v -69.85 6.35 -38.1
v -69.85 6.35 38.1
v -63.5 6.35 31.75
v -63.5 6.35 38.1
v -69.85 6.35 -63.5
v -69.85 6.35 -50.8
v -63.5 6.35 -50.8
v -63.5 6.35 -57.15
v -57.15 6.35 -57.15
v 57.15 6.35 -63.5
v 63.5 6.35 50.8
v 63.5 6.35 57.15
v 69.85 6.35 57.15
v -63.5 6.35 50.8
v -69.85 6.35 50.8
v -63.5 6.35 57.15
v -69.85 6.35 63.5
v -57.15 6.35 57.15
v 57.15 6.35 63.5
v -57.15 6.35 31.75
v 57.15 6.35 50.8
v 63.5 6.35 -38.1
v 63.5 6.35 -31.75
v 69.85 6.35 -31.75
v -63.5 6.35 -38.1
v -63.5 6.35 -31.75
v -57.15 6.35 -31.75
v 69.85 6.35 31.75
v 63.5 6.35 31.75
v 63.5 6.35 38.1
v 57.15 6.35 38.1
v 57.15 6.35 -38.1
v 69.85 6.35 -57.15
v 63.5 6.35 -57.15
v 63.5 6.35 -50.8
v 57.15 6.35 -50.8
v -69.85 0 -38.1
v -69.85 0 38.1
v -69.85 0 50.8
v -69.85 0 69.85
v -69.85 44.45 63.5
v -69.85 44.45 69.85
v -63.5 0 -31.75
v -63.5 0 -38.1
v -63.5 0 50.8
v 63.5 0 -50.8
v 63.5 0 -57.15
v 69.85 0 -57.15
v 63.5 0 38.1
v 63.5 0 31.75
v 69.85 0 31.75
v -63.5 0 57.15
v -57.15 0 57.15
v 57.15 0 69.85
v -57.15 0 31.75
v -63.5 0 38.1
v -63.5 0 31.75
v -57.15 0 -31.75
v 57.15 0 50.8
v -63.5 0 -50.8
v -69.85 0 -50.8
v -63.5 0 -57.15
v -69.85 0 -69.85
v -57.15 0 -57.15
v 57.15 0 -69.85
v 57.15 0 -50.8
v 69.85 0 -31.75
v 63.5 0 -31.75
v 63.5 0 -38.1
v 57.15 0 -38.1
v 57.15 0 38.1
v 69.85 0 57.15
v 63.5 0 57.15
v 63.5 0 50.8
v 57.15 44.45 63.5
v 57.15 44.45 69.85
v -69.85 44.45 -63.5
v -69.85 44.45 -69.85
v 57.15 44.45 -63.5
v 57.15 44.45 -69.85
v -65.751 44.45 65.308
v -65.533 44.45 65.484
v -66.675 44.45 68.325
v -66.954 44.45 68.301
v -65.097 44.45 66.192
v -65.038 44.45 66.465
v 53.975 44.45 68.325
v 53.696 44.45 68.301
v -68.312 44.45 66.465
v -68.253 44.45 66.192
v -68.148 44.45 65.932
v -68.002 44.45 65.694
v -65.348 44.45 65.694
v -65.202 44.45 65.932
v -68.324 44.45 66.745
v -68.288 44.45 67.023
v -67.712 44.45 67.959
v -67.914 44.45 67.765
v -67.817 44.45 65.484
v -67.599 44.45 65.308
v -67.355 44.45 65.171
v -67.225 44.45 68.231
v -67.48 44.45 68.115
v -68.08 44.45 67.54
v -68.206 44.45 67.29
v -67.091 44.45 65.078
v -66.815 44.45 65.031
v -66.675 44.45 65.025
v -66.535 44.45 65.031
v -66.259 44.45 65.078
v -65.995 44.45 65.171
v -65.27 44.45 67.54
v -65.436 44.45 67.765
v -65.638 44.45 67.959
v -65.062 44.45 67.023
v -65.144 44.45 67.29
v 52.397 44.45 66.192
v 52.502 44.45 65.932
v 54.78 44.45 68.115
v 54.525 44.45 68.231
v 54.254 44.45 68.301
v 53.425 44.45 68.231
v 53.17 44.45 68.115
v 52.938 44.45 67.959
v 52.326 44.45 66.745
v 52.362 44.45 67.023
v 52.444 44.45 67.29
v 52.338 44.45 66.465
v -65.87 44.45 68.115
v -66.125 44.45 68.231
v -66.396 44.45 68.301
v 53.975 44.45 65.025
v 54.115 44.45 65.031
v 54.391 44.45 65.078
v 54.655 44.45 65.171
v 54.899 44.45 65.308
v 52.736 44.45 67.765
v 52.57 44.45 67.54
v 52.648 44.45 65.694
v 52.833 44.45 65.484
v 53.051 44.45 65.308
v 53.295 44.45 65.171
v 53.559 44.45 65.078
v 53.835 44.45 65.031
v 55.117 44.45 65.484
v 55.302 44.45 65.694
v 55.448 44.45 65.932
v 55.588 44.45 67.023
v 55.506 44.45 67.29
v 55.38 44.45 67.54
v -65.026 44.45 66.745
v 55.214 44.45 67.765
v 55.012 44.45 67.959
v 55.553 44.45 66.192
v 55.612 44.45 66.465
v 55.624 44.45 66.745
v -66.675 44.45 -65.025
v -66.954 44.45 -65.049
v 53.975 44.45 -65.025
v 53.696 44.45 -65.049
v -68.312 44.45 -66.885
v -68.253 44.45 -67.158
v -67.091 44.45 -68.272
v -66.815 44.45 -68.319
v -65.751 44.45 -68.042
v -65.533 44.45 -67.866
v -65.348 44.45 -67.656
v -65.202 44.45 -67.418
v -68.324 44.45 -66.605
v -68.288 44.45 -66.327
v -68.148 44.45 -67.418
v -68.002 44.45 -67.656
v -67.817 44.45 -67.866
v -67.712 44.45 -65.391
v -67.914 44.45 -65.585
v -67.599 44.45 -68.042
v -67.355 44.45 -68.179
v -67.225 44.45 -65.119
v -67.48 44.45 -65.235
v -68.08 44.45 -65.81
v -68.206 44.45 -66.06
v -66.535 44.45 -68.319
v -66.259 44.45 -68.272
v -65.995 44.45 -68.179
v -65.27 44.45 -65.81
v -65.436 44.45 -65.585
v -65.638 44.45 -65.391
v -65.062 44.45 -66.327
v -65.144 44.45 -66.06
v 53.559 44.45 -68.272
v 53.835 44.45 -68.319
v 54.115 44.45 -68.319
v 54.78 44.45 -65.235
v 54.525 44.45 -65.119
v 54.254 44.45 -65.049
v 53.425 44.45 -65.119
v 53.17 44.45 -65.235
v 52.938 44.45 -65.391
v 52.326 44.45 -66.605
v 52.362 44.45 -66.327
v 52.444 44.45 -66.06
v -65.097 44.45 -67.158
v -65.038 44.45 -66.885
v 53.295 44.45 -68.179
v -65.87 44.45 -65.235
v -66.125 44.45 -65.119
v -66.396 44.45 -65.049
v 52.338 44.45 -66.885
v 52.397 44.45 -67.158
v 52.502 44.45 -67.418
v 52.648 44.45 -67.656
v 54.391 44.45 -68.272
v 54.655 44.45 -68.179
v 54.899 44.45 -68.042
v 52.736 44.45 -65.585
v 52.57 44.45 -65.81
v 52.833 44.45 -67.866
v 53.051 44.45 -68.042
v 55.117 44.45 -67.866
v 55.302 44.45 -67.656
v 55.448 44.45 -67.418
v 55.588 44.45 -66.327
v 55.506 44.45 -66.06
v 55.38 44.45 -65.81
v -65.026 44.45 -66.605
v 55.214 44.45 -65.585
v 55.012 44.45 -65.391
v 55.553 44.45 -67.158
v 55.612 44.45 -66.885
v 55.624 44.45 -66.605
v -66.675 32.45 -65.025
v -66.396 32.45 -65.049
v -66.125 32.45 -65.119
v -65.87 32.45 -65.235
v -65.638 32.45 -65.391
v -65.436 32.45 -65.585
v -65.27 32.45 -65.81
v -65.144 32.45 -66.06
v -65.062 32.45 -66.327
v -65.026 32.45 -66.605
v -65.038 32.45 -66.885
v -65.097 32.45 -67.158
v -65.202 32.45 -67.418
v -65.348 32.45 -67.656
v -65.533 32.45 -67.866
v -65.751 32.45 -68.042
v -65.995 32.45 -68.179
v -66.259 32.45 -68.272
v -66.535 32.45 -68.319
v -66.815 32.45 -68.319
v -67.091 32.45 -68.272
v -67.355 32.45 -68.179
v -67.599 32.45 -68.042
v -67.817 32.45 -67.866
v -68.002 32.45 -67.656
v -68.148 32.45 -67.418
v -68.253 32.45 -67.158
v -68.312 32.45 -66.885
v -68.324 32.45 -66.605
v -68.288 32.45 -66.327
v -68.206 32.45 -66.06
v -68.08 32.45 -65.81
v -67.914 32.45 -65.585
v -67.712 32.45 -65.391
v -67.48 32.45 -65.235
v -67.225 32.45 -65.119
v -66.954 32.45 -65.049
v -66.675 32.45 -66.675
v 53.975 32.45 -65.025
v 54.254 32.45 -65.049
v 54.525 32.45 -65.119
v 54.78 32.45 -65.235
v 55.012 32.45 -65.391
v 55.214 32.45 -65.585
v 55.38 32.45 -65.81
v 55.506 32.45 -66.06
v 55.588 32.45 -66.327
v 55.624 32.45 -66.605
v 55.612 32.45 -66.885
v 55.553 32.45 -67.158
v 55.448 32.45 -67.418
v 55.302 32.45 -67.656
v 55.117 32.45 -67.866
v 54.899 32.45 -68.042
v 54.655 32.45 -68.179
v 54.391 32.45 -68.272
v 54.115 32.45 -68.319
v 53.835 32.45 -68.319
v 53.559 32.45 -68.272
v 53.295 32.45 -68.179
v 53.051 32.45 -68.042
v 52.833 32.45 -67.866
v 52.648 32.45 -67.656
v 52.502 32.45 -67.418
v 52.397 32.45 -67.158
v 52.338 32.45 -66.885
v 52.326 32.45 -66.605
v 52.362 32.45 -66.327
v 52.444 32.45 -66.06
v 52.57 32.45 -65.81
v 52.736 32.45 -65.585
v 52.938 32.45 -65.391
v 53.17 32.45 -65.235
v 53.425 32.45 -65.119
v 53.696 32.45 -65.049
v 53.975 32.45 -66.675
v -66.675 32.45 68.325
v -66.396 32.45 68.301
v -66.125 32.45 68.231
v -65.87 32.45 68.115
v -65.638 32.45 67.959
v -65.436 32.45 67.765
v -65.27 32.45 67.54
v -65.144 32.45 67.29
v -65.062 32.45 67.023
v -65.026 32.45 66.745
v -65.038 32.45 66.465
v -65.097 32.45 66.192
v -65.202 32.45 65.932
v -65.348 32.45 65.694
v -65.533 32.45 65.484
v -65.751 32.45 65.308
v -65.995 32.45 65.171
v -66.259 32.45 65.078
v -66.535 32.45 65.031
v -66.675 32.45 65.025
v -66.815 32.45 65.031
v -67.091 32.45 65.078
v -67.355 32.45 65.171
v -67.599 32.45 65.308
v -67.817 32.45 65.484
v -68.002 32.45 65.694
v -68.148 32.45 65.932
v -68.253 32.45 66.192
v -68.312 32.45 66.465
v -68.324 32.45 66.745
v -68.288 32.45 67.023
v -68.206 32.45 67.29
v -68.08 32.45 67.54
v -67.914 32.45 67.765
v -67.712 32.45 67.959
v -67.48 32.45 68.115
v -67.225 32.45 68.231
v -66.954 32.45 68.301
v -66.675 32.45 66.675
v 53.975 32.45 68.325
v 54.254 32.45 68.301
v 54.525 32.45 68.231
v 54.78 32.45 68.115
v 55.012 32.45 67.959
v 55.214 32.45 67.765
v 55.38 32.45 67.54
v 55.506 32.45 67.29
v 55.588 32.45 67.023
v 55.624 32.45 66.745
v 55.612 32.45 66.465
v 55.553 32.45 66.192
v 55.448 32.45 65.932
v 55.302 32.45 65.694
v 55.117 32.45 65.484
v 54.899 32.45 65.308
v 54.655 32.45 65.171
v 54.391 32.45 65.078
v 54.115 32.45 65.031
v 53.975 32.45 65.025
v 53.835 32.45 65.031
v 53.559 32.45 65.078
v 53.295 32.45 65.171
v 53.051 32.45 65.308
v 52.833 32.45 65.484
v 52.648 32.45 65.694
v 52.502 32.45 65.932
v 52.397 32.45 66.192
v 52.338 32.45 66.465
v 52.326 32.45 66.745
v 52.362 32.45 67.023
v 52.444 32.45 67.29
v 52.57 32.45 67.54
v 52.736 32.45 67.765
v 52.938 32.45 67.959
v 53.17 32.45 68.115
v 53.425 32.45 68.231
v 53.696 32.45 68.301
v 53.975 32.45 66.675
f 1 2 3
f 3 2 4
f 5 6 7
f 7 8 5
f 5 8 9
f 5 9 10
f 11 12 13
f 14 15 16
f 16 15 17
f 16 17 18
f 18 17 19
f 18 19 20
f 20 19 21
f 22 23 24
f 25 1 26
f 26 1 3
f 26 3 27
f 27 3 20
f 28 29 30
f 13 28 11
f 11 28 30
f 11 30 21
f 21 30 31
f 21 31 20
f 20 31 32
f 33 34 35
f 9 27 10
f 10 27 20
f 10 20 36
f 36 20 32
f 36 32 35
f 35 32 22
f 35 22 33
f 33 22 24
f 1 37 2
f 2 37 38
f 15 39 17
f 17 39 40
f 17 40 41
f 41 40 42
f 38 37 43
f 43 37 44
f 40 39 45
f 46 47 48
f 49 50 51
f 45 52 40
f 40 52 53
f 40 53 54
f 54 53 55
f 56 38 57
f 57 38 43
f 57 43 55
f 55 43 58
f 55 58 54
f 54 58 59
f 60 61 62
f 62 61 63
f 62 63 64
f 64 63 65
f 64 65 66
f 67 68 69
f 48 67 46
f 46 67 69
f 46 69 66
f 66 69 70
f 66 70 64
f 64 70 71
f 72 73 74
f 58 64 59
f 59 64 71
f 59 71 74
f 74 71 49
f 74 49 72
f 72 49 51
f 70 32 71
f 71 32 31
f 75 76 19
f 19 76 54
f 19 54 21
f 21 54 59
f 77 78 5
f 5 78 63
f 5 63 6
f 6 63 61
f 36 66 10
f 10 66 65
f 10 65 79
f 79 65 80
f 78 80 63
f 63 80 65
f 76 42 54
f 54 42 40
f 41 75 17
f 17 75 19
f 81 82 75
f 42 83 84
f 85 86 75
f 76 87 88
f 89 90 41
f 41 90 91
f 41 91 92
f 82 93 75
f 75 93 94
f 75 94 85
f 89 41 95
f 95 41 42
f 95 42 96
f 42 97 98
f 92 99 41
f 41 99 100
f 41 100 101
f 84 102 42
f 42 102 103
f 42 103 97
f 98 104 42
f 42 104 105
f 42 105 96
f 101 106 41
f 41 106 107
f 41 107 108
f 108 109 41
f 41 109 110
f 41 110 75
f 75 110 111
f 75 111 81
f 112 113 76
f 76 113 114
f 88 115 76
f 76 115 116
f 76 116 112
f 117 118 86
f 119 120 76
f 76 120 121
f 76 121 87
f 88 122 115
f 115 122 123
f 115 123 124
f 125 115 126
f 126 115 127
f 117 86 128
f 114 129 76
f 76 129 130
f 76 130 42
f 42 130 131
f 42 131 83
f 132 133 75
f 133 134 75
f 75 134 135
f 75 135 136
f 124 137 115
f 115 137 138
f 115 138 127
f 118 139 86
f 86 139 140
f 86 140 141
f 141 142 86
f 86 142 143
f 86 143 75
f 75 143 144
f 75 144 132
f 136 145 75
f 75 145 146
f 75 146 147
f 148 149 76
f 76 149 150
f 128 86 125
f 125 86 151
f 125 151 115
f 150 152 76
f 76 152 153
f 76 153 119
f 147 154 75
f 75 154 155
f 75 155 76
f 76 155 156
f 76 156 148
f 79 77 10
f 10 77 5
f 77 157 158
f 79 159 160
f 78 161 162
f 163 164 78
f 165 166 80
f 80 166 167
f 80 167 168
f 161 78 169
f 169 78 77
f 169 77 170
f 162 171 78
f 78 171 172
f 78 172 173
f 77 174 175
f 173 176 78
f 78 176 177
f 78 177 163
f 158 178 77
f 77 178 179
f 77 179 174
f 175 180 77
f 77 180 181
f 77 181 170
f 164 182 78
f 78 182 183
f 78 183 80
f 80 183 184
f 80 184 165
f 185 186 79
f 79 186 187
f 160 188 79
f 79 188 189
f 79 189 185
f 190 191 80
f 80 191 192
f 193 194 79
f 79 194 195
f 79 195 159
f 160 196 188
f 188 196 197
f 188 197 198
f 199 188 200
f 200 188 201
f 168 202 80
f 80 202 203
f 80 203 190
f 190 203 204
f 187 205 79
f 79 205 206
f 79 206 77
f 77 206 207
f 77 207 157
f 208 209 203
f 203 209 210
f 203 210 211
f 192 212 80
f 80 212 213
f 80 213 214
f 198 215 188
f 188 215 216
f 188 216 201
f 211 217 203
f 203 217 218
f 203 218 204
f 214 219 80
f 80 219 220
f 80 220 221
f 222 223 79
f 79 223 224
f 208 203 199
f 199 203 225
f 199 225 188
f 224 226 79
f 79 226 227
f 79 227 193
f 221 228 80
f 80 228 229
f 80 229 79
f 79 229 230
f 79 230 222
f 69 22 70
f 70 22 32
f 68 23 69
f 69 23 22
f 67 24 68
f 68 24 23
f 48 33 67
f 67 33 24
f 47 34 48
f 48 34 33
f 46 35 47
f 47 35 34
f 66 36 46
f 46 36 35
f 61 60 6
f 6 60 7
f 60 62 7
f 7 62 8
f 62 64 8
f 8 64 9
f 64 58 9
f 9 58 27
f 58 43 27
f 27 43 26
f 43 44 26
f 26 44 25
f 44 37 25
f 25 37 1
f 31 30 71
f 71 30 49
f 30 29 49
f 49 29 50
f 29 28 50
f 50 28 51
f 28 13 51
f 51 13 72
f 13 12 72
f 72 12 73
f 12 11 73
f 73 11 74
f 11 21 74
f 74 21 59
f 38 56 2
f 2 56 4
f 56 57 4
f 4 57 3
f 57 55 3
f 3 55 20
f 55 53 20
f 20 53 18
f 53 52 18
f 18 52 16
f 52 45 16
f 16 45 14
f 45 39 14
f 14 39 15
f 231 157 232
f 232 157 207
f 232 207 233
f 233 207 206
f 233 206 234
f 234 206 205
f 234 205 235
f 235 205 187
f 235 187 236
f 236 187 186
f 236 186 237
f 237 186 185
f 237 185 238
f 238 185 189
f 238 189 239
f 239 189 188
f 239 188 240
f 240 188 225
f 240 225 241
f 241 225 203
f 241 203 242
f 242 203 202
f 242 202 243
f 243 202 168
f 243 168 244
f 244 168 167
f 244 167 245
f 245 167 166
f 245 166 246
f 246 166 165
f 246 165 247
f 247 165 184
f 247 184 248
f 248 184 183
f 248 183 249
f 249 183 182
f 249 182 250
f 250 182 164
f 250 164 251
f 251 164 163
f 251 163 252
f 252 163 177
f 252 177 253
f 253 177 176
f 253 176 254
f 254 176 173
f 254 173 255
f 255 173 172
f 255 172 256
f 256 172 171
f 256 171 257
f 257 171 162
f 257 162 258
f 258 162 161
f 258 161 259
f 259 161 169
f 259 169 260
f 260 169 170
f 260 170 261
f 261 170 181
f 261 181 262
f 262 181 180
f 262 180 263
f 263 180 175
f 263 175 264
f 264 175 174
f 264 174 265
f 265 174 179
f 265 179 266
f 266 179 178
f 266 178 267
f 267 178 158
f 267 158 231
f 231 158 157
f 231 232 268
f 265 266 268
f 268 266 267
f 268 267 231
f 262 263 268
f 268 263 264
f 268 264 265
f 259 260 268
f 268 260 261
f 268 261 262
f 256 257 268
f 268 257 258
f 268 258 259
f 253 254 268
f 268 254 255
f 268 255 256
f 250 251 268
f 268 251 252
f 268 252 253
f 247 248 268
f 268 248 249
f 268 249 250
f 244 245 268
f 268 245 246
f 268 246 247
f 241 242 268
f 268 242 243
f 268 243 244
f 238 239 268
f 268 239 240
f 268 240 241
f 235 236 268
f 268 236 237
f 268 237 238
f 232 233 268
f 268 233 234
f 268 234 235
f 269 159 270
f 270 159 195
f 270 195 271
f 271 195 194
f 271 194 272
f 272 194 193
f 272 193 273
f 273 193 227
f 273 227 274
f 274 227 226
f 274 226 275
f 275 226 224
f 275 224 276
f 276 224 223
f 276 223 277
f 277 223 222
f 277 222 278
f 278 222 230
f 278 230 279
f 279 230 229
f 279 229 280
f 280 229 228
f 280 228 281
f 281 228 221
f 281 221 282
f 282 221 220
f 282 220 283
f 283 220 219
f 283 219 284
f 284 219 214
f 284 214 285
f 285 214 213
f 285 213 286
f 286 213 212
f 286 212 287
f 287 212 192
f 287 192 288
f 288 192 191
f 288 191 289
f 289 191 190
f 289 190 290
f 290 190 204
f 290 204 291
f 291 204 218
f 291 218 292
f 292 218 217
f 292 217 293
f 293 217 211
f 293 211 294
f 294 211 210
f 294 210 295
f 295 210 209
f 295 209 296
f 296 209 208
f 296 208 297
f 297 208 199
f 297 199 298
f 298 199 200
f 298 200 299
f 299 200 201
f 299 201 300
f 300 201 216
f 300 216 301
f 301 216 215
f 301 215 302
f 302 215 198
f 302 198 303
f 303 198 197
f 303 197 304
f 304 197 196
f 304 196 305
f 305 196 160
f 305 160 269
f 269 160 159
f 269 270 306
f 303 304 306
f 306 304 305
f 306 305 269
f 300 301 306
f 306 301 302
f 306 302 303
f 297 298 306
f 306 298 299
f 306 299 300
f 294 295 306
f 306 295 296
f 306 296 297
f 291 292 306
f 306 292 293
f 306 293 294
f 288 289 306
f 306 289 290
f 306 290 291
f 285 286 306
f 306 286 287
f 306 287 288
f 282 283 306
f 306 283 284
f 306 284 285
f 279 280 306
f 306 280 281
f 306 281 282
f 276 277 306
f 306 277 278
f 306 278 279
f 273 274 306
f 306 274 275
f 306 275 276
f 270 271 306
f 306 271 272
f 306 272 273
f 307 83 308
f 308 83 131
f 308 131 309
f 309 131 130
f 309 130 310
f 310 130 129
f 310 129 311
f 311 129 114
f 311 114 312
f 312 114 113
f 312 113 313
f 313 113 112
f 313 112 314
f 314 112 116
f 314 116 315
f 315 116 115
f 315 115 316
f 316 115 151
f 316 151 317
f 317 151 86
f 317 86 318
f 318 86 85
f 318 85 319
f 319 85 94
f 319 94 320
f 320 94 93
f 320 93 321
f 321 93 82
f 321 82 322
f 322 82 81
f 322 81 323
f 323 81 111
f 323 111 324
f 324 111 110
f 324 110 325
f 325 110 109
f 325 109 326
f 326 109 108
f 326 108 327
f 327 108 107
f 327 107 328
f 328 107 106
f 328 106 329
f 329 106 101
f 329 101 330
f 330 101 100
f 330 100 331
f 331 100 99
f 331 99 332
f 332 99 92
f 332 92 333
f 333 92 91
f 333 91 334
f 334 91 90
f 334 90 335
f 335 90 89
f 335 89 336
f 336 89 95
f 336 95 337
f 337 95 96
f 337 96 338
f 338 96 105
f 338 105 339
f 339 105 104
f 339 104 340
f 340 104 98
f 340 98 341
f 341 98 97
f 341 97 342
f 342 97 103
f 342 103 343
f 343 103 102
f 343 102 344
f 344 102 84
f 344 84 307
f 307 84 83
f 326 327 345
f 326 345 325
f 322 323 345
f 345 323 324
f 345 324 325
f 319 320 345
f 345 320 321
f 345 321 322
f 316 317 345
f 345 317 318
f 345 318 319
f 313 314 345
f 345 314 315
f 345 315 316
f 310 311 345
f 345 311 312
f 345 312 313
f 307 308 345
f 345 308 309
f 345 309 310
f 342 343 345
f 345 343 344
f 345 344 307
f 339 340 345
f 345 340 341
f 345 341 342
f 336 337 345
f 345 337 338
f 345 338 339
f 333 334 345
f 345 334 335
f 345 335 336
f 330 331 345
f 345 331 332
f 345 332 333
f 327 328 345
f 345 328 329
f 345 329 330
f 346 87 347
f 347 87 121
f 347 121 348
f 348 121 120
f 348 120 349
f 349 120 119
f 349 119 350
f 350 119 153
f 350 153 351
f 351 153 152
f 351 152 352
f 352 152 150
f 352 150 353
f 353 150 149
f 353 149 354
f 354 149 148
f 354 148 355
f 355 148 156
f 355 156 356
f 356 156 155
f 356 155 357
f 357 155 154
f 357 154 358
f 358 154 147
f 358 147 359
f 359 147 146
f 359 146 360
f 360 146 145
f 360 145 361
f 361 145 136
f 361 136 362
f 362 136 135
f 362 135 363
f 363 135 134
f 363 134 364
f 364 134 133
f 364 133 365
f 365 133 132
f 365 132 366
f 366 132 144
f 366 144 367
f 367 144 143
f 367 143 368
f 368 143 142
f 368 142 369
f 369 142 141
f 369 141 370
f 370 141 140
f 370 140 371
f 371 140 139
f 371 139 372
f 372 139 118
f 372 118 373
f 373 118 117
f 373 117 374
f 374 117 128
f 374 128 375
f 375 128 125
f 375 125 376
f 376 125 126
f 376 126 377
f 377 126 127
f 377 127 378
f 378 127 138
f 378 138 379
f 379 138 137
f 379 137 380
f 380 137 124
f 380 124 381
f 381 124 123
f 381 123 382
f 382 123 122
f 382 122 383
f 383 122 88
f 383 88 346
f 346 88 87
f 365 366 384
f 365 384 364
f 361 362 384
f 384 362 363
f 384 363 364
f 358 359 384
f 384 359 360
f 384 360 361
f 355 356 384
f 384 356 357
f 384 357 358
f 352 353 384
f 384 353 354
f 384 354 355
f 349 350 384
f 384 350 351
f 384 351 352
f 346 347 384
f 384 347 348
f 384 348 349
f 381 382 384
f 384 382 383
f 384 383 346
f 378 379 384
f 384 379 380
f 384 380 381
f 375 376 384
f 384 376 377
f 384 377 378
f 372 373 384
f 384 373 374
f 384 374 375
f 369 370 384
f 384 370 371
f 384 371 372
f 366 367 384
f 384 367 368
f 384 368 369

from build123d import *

# Parameters (mm, degrees)
SKETCH1_W                                  = 127
SKETCH1_H                                  = 139.7
BOSS_EXTRUDE1_DEPTH                        = 6.35
SKETCH3_W                                  = 127
SKETCH3_H                                  = 6.35
BOSS_EXTRUDE2_DEPTH                        = 38.1
BOSS_EXTRUDE3_DEPTH                        = 6.35
CUT_EXTRUDE2_DEPTH                         = 106.875658203
SKETCH8_R                                  = 1.65
CUT_EXTRUDE3_DEPTH                         = 12
MIRROR2_AT_THE_SECOND_PLANE_COPY_1_SKETC_R = 1.65
MIRROR2_AT_THE_SECOND_PLANE_COPY_1_DEPTH   = 12


with BuildPart() as part:
    # Sketch1 → Boss-Extrude1 (new body)
    with BuildSketch(Plane(origin=(0, 0, 0), x_dir=(1, 0, 0), z_dir=(0, 1, 0))):
        with Locations((-6.35, 0)):
            Rectangle(SKETCH1_W, SKETCH1_H)
    extrude(amount=BOSS_EXTRUDE1_DEPTH)

    # Sketch3 → Boss-Extrude2 (add)
    with BuildSketch(Plane(origin=(0, 6.35, 0), x_dir=(1, 0, 0), z_dir=(0, 1, 0))):
        with Locations((-6.35, 66.675)):
            Rectangle(SKETCH3_W, SKETCH3_H)
        with Locations((-6.35, -66.675)):
            Rectangle(SKETCH3_W, SKETCH3_H)
    extrude(amount=BOSS_EXTRUDE2_DEPTH)

    # Sketch6 → Boss-Extrude3 (add)
    with BuildSketch(Plane(origin=(0, 6.35, 0), x_dir=(1, 0, 0), z_dir=(0, 1, 0))):
        Polygon((57.15, 50.8), (63.5, 50.8), (63.5, 57.15), (69.85, 57.15), (69.85, 31.75), (63.5, 31.75), (63.5, 38.1), (57.15, 38.1), align=None)
    boss_extrude3 = extrude(amount=-BOSS_EXTRUDE3_DEPTH)

    # Sketch7 → Cut-Extrude2 (cut, through all)
    with BuildSketch(Plane(origin=(0, 6.35, 0), x_dir=(1, 0, 0), z_dir=(0, 1, 0))):
        Polygon((-69.85, 50.8), (-63.5, 50.8), (-63.5, 57.15), (-57.15, 57.15), (-57.15, 31.75), (-63.5, 31.75), (-63.5, 38.1), (-69.85, 38.1), align=None)
    cut_extrude2 = extrude(amount=-CUT_EXTRUDE2_DEPTH, mode=Mode.SUBTRACT)

    # Mirror1: Boss-Extrude3, Cut-Extrude2 across plane
    add(boss_extrude3.mirror(Plane.XY))
    add(cut_extrude2.mirror(Plane.XY), mode=Mode.SUBTRACT)

    # Sketch8 → Cut-Extrude3 (cut)
    with BuildSketch(Plane(origin=(0, 44.45, 0), x_dir=(1, 0, 0), z_dir=(0, 1, 0))):
        with Locations(Location((-66.675, 66.675, 0), (0, 0, 270))):
            Circle(SKETCH8_R)
    cut_extrude3 = extrude(amount=-CUT_EXTRUDE3_DEPTH, mode=Mode.SUBTRACT)

    # Mirror2: Cut-Extrude3 across plane
    add(cut_extrude3.mirror(Plane.XY), mode=Mode.SUBTRACT)

    # Mirror2 at the second plane: Cut-Extrude3 across plane
    add(cut_extrude3.mirror(Plane.ZY.offset(6.35)), mode=Mode.SUBTRACT)

    # Mirror2 at the second plane copy 1 sketc → Mirror2 at the second plane copy 1 (cut)
    with BuildSketch(Plane(origin=(-12.7, 44.45, 0), x_dir=(-1, 0, 0), z_dir=(0, 1, 0))):
        with Locations(Location((-66.675, 66.675, 0), (0, 0, 270))):
            Circle(MIRROR2_AT_THE_SECOND_PLANE_COPY_1_SKETC_R)
    extrude(amount=-MIRROR2_AT_THE_SECOND_PLANE_COPY_1_DEPTH, mode=Mode.SUBTRACT)


solid = part.part
